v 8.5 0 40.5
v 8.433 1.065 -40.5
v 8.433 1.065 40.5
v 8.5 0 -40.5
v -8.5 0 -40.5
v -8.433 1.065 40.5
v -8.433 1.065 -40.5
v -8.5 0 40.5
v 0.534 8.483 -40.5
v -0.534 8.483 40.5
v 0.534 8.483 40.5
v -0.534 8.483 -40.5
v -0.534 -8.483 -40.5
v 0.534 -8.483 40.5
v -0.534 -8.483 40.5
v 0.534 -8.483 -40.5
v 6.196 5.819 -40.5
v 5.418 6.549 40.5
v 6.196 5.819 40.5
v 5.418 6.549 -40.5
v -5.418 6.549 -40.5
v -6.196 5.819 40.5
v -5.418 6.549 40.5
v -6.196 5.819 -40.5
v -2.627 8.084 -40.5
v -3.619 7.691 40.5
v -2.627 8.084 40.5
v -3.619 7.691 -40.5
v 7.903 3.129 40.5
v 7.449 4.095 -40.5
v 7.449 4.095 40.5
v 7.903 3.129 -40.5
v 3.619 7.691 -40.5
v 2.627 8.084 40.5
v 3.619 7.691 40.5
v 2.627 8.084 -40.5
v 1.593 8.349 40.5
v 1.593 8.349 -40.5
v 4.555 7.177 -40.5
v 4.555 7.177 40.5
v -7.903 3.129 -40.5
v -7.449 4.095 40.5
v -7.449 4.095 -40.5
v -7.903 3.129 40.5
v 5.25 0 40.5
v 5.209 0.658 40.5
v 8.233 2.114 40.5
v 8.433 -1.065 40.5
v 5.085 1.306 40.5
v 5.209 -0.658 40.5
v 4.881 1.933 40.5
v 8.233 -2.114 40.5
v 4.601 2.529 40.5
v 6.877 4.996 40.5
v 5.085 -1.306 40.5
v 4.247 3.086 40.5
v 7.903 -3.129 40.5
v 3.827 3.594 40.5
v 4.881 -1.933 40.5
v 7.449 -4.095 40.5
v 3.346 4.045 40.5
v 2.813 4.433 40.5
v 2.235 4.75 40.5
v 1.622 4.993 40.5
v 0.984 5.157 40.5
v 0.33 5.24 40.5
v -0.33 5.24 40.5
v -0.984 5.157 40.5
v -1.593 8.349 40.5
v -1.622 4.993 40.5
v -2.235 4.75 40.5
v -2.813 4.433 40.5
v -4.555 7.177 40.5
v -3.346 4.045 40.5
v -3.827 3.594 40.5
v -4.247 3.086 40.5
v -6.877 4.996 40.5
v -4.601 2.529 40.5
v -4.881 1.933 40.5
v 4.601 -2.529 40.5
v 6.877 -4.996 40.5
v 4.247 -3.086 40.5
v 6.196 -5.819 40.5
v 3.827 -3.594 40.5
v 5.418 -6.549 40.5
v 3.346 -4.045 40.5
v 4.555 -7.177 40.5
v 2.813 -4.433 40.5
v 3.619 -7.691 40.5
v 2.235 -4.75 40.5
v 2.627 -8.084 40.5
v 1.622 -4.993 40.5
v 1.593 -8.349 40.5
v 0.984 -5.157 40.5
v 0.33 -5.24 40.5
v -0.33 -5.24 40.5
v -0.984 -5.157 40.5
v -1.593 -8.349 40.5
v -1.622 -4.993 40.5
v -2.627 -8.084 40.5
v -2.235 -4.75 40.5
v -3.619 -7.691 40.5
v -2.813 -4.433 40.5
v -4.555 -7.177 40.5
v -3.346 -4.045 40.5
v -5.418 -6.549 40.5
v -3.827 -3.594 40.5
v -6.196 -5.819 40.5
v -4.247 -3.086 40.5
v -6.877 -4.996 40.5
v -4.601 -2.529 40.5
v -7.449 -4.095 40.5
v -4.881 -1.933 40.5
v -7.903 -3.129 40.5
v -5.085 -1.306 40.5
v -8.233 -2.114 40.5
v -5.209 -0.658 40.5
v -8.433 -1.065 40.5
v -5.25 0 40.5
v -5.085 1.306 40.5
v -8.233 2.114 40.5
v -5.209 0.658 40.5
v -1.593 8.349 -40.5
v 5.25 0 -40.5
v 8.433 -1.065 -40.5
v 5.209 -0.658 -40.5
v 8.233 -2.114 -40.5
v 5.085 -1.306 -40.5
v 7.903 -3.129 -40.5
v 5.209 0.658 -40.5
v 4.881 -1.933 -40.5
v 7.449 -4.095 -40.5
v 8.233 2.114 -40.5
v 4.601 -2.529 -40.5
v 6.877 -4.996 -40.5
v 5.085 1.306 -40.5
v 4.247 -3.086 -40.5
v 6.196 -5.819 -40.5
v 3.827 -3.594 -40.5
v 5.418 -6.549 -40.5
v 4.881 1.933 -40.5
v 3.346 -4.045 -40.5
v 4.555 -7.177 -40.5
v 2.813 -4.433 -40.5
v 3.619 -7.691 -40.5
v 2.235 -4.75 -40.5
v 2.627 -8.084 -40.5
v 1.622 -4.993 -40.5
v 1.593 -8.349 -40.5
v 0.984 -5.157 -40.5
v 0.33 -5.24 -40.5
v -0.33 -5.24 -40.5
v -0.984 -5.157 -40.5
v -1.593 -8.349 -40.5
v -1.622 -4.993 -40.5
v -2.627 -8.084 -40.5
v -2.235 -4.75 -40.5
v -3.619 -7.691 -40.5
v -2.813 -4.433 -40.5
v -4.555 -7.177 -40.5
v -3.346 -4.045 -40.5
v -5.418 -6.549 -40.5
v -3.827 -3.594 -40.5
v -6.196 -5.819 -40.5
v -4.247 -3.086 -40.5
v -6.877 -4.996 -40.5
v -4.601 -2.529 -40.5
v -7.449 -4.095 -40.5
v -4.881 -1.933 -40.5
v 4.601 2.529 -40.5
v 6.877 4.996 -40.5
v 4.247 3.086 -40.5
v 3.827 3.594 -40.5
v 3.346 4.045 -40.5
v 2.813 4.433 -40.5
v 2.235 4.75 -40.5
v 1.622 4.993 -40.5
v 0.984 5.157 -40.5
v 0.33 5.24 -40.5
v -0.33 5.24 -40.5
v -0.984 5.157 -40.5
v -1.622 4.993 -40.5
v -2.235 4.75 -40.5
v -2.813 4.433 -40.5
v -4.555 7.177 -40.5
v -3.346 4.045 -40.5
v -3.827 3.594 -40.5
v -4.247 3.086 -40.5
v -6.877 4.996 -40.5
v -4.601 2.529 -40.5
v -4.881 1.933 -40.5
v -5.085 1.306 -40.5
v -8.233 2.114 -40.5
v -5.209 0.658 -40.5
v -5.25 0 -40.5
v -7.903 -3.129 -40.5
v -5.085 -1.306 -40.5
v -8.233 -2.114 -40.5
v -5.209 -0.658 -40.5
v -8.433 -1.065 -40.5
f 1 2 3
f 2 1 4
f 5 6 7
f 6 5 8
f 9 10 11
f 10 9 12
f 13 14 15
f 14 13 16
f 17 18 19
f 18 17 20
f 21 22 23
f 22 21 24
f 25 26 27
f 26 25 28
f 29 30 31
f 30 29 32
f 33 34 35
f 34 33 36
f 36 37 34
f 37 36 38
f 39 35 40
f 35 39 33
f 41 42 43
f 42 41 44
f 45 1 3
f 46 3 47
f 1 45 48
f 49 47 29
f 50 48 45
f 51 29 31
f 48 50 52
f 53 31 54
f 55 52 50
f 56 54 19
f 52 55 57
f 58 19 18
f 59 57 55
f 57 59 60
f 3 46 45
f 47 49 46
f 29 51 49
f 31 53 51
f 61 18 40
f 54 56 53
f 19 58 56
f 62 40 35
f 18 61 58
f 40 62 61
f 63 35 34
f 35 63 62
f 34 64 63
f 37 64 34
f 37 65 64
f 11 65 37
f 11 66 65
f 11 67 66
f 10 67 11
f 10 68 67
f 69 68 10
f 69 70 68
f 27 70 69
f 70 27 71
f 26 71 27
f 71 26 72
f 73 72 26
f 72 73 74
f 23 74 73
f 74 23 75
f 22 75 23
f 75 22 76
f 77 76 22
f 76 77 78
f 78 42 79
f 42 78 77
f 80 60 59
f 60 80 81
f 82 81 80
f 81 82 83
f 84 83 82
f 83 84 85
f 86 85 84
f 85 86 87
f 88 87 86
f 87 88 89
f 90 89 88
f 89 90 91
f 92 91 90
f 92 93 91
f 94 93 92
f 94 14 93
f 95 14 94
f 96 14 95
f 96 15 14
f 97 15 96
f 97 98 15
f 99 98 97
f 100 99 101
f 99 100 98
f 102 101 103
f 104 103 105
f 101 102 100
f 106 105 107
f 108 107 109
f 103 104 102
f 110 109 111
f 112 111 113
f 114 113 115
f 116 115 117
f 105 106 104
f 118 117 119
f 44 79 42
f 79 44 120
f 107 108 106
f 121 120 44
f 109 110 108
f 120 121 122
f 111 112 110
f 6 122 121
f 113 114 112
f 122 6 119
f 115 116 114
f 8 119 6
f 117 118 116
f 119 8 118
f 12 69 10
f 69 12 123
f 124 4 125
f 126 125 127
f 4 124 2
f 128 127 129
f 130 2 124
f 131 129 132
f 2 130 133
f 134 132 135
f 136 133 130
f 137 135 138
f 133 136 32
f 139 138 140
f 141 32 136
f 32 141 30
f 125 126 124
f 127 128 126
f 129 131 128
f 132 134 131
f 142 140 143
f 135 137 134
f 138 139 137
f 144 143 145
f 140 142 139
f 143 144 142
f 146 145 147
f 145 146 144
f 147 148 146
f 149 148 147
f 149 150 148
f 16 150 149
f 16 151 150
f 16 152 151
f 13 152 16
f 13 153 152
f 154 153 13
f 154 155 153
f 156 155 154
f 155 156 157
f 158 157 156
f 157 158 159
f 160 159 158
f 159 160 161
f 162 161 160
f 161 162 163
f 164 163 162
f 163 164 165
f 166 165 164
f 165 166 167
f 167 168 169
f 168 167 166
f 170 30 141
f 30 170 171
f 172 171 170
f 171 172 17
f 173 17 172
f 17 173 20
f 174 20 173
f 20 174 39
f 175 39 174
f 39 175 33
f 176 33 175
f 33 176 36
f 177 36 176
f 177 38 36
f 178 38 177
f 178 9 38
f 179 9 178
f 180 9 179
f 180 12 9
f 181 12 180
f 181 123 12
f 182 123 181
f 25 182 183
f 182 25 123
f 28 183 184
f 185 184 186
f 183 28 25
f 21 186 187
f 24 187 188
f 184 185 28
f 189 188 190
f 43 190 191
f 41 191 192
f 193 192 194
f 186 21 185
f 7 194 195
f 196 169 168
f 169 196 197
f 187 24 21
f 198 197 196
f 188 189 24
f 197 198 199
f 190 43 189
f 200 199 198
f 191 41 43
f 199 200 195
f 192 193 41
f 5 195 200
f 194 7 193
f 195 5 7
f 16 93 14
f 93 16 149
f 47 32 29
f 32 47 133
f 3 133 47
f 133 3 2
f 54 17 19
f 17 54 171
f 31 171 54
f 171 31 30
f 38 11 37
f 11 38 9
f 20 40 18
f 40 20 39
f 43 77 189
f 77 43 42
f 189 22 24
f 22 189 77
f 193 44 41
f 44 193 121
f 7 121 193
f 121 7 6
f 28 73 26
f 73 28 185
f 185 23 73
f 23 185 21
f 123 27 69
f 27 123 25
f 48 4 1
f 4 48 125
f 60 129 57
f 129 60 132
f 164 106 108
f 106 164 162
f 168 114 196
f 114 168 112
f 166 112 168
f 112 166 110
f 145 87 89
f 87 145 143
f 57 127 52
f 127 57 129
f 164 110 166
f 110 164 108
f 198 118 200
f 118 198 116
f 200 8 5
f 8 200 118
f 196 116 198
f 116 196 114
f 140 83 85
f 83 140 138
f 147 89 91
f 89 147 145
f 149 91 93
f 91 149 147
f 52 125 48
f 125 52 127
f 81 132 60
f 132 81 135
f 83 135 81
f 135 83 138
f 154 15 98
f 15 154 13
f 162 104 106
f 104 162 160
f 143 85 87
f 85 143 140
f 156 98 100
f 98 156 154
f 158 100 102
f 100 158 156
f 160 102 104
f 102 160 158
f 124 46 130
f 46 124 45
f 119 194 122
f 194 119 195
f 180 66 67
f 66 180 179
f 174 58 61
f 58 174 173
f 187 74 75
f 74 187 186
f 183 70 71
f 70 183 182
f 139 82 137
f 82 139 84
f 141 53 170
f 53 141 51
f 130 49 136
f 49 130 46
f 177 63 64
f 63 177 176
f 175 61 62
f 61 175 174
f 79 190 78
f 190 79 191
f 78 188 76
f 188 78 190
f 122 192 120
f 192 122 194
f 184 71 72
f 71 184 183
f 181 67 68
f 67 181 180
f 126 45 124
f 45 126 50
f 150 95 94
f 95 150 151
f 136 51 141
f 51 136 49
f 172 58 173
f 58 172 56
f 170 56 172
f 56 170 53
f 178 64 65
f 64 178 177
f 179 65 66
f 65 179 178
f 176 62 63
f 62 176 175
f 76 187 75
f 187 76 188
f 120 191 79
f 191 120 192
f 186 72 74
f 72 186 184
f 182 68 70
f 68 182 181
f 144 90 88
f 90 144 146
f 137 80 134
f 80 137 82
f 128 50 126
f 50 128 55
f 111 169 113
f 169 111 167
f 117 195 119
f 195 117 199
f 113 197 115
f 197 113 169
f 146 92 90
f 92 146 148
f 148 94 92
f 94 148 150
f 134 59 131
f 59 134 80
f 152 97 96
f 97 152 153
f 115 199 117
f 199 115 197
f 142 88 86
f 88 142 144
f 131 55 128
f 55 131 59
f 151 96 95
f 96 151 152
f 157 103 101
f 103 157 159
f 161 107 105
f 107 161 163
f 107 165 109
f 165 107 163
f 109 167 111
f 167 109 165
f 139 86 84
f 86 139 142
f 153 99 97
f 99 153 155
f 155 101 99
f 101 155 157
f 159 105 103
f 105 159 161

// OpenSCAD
$fn = 50;


difference() {
	union() {
		translate(v = [0, 0, -40.5000000000]) {
			cylinder(h = 81, r = 8.5000000000);
		}
	}
	union() {
		translate(v = [0, 0, -100.0000000000]) {
			cylinder(h = 200, r = 5.2500000000);
		}
	}
}
